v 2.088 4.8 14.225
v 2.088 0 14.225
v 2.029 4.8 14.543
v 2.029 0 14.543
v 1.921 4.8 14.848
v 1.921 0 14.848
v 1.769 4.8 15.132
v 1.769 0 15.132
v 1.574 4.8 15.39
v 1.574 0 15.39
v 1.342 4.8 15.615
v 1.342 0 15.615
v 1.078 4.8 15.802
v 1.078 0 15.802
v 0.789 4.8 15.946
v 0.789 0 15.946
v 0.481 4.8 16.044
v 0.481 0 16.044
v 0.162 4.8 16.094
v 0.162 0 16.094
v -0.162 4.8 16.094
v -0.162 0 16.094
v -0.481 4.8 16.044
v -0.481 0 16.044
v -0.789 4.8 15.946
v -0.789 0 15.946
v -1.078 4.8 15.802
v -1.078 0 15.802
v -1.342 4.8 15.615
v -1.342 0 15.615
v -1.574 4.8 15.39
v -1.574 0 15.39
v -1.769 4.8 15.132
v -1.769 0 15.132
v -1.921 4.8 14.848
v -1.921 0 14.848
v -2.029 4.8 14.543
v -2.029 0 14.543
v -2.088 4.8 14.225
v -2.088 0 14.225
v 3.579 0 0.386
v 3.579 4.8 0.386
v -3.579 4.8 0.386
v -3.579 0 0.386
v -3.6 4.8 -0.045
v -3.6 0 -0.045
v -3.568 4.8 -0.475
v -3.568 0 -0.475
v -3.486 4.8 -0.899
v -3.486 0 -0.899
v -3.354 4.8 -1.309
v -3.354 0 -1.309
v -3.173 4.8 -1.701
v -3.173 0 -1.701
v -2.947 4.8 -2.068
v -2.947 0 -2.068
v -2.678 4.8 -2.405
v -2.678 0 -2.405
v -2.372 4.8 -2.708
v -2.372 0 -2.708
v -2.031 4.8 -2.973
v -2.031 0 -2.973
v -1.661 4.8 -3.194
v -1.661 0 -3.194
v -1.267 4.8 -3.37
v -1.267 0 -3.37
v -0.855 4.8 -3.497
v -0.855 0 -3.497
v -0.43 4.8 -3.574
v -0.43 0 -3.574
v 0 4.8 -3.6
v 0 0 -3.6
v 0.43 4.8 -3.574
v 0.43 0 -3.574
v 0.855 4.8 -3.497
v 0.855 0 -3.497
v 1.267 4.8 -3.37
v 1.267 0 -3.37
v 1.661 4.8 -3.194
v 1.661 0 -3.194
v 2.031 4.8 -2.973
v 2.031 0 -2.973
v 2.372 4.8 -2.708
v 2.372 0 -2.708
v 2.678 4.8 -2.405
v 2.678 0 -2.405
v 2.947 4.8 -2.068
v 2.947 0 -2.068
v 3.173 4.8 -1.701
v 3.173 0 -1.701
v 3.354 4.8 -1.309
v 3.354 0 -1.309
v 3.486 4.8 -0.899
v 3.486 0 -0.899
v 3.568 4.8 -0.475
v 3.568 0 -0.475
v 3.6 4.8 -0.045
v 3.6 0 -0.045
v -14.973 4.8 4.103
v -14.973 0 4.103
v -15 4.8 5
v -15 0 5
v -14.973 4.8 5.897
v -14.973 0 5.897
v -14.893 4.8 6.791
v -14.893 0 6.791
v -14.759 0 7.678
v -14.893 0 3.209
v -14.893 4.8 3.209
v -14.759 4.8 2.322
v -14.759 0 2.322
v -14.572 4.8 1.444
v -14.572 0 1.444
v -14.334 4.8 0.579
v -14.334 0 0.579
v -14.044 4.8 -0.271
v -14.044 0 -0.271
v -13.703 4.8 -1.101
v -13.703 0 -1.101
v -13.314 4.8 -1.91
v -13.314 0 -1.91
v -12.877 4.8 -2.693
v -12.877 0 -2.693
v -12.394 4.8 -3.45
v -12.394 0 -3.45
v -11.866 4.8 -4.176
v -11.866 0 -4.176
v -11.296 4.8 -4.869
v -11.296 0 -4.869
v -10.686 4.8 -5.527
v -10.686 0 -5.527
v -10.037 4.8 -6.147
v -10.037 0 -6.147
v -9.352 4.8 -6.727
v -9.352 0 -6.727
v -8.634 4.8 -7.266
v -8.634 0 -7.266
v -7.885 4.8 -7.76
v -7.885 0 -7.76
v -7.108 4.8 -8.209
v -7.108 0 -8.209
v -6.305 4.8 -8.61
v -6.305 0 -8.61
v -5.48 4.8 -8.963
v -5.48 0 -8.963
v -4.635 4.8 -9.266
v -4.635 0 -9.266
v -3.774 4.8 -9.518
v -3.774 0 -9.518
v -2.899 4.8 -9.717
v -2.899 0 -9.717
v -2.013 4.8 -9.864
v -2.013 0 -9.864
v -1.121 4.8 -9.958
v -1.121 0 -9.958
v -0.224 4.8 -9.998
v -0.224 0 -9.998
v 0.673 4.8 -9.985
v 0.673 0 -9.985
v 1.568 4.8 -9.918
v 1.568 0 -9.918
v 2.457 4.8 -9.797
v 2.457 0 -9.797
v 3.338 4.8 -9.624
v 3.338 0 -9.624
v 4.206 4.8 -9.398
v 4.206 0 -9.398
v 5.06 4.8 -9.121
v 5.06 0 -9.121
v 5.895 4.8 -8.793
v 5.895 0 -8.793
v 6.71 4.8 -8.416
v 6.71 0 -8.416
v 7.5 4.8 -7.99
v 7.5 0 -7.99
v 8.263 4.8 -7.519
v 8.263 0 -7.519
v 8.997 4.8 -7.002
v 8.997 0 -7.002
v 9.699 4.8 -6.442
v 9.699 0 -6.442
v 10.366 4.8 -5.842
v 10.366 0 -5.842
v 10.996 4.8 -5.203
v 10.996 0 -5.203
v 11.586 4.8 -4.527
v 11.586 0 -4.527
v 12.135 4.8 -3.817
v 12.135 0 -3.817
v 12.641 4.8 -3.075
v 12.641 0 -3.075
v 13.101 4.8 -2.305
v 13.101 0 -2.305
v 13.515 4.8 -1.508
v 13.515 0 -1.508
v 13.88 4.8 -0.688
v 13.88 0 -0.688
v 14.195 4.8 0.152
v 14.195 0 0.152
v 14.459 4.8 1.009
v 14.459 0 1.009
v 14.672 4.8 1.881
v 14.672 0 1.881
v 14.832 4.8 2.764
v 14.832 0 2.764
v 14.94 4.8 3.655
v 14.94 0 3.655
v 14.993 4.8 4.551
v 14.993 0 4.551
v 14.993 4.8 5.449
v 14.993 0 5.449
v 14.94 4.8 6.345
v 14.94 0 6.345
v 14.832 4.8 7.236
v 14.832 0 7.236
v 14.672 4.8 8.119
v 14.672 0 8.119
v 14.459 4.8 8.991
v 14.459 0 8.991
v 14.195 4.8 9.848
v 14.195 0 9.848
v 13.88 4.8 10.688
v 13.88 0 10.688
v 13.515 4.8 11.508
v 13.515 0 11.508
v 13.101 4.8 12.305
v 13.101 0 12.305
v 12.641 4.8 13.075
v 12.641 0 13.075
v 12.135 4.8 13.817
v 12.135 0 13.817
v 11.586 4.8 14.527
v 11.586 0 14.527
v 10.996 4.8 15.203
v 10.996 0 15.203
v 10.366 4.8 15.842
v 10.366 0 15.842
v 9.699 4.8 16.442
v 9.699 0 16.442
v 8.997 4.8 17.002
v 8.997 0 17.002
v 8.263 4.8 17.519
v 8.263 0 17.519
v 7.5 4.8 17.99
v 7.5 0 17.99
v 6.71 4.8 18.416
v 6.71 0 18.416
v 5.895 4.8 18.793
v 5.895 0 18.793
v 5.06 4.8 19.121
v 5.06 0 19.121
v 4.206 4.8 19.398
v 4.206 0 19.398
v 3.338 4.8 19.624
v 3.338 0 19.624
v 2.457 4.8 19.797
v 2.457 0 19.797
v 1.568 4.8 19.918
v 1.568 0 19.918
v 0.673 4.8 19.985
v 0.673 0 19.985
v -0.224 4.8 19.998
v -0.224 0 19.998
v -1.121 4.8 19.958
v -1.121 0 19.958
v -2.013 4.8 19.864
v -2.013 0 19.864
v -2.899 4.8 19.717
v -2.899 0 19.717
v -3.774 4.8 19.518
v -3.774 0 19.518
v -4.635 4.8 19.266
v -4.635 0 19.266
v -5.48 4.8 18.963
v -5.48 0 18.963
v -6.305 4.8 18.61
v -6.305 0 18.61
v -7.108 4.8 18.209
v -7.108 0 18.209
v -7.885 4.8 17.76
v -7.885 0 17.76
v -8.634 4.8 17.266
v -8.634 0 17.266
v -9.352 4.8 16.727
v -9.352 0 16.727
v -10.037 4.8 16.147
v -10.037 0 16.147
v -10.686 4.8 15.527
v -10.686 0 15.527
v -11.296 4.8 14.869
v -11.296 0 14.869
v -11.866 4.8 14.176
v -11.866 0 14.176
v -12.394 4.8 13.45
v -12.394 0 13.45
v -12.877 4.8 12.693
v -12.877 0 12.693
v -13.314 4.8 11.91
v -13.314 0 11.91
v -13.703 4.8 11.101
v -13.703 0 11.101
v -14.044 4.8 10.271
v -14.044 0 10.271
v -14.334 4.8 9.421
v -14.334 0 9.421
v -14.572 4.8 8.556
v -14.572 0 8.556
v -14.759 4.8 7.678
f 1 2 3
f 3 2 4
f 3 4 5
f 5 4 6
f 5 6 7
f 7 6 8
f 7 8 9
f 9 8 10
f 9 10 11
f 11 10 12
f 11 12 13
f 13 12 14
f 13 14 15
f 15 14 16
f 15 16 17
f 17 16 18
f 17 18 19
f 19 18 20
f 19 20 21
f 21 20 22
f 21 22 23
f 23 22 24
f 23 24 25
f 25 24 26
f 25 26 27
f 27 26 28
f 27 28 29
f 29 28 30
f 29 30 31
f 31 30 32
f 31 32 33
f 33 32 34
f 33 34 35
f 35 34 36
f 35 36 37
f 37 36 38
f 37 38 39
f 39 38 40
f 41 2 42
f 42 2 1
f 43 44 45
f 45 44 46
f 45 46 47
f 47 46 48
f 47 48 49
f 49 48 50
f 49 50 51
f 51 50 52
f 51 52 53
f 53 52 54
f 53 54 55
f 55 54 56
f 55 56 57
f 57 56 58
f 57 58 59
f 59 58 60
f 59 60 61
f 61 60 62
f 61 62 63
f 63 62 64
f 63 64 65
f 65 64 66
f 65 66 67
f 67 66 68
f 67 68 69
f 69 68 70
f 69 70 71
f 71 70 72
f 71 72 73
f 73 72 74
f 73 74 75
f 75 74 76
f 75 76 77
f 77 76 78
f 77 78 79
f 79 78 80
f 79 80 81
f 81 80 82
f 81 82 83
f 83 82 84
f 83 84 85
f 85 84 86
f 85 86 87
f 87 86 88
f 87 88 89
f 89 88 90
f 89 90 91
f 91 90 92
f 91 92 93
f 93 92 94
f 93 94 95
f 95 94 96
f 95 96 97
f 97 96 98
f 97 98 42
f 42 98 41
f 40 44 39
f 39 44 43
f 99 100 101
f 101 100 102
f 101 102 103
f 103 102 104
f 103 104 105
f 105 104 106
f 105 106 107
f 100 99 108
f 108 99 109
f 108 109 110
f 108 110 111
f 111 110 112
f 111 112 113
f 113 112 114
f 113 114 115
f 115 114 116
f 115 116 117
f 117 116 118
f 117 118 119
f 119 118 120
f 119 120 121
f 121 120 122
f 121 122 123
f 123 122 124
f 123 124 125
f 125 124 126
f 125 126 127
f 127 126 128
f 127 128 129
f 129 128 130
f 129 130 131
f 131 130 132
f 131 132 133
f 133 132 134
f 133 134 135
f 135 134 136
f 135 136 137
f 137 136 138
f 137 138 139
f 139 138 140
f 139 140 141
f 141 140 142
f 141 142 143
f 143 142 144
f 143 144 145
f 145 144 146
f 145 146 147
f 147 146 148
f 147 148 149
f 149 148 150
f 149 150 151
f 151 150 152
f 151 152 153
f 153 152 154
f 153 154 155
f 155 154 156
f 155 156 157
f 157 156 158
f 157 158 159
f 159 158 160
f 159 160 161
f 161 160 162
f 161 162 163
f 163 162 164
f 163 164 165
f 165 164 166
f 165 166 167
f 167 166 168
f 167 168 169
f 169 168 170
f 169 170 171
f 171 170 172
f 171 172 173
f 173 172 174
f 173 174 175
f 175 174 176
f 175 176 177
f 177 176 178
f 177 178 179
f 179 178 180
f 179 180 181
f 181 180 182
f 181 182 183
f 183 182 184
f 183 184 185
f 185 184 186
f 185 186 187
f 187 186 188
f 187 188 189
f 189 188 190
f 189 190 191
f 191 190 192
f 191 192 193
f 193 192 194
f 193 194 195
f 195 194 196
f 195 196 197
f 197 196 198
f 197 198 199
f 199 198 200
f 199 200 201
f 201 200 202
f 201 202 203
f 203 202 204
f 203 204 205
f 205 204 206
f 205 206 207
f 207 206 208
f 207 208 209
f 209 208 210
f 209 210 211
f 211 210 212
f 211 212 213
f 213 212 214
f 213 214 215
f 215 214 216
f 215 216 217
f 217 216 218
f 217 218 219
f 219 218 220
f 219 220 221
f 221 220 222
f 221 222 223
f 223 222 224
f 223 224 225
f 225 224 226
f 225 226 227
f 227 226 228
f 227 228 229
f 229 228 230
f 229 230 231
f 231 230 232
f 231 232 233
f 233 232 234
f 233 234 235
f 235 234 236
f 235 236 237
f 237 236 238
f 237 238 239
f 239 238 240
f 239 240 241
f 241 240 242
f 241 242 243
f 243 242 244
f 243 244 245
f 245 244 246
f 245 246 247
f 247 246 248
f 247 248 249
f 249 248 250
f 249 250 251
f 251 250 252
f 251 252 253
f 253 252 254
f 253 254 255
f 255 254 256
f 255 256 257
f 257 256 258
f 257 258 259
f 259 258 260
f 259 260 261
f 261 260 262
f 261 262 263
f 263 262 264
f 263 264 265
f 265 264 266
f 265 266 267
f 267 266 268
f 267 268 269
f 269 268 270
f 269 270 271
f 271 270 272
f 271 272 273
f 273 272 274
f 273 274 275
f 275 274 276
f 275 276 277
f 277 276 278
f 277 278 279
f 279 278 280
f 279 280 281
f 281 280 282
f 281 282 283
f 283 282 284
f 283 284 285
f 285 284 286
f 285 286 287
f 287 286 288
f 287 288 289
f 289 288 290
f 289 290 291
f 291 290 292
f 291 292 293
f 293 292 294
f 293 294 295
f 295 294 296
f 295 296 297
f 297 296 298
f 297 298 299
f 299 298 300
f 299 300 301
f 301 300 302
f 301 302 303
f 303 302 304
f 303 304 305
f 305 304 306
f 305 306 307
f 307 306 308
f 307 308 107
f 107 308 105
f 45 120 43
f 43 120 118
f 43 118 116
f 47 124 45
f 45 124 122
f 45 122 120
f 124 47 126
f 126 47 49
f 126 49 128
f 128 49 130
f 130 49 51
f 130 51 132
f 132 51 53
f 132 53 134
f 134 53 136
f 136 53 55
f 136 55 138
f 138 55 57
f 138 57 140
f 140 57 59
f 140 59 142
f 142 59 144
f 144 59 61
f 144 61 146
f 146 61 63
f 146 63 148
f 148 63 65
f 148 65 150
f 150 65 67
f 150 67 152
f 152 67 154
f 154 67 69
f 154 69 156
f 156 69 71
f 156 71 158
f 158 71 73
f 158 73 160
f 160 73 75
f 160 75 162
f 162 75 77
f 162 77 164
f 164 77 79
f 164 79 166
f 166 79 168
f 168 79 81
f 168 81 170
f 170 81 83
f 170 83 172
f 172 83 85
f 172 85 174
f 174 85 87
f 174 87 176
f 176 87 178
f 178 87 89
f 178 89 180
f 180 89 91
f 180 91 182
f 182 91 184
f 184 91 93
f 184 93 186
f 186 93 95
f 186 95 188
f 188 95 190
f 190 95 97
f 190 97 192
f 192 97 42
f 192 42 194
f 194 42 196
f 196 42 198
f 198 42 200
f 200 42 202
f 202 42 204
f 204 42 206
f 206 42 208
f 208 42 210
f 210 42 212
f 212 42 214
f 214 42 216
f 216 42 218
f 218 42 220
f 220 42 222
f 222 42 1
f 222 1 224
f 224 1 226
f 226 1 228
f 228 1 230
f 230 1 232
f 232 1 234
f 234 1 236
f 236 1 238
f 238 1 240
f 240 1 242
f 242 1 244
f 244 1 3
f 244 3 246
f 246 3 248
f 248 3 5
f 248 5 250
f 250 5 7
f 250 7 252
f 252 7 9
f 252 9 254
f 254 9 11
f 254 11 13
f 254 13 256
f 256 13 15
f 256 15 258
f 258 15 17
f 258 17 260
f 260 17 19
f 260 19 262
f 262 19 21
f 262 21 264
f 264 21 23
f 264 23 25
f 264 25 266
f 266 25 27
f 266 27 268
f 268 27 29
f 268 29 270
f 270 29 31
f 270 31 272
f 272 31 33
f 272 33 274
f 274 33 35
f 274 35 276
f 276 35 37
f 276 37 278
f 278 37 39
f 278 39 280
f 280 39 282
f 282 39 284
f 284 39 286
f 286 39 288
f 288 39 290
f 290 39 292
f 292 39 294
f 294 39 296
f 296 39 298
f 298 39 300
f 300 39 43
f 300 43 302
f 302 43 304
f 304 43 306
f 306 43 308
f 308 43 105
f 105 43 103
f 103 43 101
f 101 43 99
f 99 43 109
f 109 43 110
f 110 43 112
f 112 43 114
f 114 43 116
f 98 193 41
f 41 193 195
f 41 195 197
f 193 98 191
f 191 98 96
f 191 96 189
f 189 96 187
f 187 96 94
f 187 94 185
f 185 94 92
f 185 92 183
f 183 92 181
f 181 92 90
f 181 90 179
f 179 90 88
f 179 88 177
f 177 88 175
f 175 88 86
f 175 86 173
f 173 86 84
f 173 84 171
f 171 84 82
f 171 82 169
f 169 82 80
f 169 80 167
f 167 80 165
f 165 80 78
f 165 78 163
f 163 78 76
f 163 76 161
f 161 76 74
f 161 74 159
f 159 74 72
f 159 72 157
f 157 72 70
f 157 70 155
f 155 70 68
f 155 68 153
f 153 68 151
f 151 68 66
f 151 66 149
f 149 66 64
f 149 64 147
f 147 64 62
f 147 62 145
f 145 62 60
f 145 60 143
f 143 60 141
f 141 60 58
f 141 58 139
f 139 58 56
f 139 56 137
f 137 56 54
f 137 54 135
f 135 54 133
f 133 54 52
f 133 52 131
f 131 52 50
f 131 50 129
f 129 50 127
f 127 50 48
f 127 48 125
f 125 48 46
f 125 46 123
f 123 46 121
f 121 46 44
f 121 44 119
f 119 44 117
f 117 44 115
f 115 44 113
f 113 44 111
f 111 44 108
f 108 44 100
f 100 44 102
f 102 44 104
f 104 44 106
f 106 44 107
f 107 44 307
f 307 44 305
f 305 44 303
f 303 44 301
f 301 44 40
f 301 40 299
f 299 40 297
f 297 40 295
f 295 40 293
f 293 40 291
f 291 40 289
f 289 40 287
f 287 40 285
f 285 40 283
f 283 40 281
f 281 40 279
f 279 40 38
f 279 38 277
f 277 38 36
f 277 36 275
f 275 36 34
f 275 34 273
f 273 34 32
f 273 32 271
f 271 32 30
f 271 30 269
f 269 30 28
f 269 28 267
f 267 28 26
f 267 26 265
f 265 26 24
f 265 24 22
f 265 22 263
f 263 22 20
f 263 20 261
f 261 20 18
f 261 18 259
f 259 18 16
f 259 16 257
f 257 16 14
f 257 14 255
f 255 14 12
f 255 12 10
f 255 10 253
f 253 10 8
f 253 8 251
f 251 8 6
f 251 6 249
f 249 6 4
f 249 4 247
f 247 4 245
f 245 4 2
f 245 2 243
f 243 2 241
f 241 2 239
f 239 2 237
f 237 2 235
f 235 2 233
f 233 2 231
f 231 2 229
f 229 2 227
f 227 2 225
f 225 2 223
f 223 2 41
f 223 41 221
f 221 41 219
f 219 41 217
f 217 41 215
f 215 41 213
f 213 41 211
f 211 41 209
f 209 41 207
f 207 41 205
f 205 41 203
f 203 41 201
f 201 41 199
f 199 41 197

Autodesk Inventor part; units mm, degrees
ref_plane "YZ Plane" through (0, 0, 0) normal (1, 0, 0) x (0, 1, 0)
ref_plane "XZ Plane" through (0, 0, 0) normal (0, 1, 0) x (-1, 0, 0)
ref_plane "XY Plane" through (0, 0, 0) normal (0, 0, 1) x (1, 0, 0)
sketch "Sketch1" plane through (0, 0, 0) normal (0, 1, 0) x (-1, 0, 0)
  circle A0 centre (0, 0) radius 20 construction
  circle A1 centre (0, 5) radius 15
  circle A2 centre (0, 0) radius 3.5
  circle A3 centre (0, 14) radius 2
  line L0 (-1.9885, 14.2143) -> (-3.4799, 0.375)
  line L1 (1.9885, 14.2143) -> (3.4799, 0.375)
  dimension "d0" = 40
  dimension "d1" = 30
  dimension "d2" = 7
  dimension "d3" = 4
  dimension "d4" = 19.5
extrude "Extrusion1" add sketch "Sketch1" along normal blind 4.8
sketch "Sketch2" plane through (0, 4.8, 5) normal (0, 1, 0) x (1, 0, 0)
  arc A0 (-1.9885, -9.2143) -> (1.9885, -9.2143) centre (0, -9) ccw projected
  line L0 (1.9885, -9.2143) -> (3.4799, 4.625) projected
  arc A1 (3.4799, 4.625) -> (-3.4799, 4.625) centre (0, 5) ccw projected
  line L1 (-3.4799, 4.625) -> (-1.9885, -9.2143) projected
  circle A2 centre (0, 0) radius 15 projected
  arc A3 (-2.0879, -9.225) -> (2.0879, -9.225) centre (0, -9) ccw
  line L2 (2.0879, -9.225) -> (3.5793, 4.6143)
  arc A4 (3.5793, 4.6143) -> (-3.5793, 4.6143) centre (0, 5) ccw
  line L3 (-3.5793, 4.6143) -> (-2.0879, -9.225)
  dimension "d7" = 0.1
extrude "Extrusion2" cut sketch "Sketch2" against normal through all contours L3 A4 L2 A3
properties part number "Ventil Scheibe_3DPrint"
